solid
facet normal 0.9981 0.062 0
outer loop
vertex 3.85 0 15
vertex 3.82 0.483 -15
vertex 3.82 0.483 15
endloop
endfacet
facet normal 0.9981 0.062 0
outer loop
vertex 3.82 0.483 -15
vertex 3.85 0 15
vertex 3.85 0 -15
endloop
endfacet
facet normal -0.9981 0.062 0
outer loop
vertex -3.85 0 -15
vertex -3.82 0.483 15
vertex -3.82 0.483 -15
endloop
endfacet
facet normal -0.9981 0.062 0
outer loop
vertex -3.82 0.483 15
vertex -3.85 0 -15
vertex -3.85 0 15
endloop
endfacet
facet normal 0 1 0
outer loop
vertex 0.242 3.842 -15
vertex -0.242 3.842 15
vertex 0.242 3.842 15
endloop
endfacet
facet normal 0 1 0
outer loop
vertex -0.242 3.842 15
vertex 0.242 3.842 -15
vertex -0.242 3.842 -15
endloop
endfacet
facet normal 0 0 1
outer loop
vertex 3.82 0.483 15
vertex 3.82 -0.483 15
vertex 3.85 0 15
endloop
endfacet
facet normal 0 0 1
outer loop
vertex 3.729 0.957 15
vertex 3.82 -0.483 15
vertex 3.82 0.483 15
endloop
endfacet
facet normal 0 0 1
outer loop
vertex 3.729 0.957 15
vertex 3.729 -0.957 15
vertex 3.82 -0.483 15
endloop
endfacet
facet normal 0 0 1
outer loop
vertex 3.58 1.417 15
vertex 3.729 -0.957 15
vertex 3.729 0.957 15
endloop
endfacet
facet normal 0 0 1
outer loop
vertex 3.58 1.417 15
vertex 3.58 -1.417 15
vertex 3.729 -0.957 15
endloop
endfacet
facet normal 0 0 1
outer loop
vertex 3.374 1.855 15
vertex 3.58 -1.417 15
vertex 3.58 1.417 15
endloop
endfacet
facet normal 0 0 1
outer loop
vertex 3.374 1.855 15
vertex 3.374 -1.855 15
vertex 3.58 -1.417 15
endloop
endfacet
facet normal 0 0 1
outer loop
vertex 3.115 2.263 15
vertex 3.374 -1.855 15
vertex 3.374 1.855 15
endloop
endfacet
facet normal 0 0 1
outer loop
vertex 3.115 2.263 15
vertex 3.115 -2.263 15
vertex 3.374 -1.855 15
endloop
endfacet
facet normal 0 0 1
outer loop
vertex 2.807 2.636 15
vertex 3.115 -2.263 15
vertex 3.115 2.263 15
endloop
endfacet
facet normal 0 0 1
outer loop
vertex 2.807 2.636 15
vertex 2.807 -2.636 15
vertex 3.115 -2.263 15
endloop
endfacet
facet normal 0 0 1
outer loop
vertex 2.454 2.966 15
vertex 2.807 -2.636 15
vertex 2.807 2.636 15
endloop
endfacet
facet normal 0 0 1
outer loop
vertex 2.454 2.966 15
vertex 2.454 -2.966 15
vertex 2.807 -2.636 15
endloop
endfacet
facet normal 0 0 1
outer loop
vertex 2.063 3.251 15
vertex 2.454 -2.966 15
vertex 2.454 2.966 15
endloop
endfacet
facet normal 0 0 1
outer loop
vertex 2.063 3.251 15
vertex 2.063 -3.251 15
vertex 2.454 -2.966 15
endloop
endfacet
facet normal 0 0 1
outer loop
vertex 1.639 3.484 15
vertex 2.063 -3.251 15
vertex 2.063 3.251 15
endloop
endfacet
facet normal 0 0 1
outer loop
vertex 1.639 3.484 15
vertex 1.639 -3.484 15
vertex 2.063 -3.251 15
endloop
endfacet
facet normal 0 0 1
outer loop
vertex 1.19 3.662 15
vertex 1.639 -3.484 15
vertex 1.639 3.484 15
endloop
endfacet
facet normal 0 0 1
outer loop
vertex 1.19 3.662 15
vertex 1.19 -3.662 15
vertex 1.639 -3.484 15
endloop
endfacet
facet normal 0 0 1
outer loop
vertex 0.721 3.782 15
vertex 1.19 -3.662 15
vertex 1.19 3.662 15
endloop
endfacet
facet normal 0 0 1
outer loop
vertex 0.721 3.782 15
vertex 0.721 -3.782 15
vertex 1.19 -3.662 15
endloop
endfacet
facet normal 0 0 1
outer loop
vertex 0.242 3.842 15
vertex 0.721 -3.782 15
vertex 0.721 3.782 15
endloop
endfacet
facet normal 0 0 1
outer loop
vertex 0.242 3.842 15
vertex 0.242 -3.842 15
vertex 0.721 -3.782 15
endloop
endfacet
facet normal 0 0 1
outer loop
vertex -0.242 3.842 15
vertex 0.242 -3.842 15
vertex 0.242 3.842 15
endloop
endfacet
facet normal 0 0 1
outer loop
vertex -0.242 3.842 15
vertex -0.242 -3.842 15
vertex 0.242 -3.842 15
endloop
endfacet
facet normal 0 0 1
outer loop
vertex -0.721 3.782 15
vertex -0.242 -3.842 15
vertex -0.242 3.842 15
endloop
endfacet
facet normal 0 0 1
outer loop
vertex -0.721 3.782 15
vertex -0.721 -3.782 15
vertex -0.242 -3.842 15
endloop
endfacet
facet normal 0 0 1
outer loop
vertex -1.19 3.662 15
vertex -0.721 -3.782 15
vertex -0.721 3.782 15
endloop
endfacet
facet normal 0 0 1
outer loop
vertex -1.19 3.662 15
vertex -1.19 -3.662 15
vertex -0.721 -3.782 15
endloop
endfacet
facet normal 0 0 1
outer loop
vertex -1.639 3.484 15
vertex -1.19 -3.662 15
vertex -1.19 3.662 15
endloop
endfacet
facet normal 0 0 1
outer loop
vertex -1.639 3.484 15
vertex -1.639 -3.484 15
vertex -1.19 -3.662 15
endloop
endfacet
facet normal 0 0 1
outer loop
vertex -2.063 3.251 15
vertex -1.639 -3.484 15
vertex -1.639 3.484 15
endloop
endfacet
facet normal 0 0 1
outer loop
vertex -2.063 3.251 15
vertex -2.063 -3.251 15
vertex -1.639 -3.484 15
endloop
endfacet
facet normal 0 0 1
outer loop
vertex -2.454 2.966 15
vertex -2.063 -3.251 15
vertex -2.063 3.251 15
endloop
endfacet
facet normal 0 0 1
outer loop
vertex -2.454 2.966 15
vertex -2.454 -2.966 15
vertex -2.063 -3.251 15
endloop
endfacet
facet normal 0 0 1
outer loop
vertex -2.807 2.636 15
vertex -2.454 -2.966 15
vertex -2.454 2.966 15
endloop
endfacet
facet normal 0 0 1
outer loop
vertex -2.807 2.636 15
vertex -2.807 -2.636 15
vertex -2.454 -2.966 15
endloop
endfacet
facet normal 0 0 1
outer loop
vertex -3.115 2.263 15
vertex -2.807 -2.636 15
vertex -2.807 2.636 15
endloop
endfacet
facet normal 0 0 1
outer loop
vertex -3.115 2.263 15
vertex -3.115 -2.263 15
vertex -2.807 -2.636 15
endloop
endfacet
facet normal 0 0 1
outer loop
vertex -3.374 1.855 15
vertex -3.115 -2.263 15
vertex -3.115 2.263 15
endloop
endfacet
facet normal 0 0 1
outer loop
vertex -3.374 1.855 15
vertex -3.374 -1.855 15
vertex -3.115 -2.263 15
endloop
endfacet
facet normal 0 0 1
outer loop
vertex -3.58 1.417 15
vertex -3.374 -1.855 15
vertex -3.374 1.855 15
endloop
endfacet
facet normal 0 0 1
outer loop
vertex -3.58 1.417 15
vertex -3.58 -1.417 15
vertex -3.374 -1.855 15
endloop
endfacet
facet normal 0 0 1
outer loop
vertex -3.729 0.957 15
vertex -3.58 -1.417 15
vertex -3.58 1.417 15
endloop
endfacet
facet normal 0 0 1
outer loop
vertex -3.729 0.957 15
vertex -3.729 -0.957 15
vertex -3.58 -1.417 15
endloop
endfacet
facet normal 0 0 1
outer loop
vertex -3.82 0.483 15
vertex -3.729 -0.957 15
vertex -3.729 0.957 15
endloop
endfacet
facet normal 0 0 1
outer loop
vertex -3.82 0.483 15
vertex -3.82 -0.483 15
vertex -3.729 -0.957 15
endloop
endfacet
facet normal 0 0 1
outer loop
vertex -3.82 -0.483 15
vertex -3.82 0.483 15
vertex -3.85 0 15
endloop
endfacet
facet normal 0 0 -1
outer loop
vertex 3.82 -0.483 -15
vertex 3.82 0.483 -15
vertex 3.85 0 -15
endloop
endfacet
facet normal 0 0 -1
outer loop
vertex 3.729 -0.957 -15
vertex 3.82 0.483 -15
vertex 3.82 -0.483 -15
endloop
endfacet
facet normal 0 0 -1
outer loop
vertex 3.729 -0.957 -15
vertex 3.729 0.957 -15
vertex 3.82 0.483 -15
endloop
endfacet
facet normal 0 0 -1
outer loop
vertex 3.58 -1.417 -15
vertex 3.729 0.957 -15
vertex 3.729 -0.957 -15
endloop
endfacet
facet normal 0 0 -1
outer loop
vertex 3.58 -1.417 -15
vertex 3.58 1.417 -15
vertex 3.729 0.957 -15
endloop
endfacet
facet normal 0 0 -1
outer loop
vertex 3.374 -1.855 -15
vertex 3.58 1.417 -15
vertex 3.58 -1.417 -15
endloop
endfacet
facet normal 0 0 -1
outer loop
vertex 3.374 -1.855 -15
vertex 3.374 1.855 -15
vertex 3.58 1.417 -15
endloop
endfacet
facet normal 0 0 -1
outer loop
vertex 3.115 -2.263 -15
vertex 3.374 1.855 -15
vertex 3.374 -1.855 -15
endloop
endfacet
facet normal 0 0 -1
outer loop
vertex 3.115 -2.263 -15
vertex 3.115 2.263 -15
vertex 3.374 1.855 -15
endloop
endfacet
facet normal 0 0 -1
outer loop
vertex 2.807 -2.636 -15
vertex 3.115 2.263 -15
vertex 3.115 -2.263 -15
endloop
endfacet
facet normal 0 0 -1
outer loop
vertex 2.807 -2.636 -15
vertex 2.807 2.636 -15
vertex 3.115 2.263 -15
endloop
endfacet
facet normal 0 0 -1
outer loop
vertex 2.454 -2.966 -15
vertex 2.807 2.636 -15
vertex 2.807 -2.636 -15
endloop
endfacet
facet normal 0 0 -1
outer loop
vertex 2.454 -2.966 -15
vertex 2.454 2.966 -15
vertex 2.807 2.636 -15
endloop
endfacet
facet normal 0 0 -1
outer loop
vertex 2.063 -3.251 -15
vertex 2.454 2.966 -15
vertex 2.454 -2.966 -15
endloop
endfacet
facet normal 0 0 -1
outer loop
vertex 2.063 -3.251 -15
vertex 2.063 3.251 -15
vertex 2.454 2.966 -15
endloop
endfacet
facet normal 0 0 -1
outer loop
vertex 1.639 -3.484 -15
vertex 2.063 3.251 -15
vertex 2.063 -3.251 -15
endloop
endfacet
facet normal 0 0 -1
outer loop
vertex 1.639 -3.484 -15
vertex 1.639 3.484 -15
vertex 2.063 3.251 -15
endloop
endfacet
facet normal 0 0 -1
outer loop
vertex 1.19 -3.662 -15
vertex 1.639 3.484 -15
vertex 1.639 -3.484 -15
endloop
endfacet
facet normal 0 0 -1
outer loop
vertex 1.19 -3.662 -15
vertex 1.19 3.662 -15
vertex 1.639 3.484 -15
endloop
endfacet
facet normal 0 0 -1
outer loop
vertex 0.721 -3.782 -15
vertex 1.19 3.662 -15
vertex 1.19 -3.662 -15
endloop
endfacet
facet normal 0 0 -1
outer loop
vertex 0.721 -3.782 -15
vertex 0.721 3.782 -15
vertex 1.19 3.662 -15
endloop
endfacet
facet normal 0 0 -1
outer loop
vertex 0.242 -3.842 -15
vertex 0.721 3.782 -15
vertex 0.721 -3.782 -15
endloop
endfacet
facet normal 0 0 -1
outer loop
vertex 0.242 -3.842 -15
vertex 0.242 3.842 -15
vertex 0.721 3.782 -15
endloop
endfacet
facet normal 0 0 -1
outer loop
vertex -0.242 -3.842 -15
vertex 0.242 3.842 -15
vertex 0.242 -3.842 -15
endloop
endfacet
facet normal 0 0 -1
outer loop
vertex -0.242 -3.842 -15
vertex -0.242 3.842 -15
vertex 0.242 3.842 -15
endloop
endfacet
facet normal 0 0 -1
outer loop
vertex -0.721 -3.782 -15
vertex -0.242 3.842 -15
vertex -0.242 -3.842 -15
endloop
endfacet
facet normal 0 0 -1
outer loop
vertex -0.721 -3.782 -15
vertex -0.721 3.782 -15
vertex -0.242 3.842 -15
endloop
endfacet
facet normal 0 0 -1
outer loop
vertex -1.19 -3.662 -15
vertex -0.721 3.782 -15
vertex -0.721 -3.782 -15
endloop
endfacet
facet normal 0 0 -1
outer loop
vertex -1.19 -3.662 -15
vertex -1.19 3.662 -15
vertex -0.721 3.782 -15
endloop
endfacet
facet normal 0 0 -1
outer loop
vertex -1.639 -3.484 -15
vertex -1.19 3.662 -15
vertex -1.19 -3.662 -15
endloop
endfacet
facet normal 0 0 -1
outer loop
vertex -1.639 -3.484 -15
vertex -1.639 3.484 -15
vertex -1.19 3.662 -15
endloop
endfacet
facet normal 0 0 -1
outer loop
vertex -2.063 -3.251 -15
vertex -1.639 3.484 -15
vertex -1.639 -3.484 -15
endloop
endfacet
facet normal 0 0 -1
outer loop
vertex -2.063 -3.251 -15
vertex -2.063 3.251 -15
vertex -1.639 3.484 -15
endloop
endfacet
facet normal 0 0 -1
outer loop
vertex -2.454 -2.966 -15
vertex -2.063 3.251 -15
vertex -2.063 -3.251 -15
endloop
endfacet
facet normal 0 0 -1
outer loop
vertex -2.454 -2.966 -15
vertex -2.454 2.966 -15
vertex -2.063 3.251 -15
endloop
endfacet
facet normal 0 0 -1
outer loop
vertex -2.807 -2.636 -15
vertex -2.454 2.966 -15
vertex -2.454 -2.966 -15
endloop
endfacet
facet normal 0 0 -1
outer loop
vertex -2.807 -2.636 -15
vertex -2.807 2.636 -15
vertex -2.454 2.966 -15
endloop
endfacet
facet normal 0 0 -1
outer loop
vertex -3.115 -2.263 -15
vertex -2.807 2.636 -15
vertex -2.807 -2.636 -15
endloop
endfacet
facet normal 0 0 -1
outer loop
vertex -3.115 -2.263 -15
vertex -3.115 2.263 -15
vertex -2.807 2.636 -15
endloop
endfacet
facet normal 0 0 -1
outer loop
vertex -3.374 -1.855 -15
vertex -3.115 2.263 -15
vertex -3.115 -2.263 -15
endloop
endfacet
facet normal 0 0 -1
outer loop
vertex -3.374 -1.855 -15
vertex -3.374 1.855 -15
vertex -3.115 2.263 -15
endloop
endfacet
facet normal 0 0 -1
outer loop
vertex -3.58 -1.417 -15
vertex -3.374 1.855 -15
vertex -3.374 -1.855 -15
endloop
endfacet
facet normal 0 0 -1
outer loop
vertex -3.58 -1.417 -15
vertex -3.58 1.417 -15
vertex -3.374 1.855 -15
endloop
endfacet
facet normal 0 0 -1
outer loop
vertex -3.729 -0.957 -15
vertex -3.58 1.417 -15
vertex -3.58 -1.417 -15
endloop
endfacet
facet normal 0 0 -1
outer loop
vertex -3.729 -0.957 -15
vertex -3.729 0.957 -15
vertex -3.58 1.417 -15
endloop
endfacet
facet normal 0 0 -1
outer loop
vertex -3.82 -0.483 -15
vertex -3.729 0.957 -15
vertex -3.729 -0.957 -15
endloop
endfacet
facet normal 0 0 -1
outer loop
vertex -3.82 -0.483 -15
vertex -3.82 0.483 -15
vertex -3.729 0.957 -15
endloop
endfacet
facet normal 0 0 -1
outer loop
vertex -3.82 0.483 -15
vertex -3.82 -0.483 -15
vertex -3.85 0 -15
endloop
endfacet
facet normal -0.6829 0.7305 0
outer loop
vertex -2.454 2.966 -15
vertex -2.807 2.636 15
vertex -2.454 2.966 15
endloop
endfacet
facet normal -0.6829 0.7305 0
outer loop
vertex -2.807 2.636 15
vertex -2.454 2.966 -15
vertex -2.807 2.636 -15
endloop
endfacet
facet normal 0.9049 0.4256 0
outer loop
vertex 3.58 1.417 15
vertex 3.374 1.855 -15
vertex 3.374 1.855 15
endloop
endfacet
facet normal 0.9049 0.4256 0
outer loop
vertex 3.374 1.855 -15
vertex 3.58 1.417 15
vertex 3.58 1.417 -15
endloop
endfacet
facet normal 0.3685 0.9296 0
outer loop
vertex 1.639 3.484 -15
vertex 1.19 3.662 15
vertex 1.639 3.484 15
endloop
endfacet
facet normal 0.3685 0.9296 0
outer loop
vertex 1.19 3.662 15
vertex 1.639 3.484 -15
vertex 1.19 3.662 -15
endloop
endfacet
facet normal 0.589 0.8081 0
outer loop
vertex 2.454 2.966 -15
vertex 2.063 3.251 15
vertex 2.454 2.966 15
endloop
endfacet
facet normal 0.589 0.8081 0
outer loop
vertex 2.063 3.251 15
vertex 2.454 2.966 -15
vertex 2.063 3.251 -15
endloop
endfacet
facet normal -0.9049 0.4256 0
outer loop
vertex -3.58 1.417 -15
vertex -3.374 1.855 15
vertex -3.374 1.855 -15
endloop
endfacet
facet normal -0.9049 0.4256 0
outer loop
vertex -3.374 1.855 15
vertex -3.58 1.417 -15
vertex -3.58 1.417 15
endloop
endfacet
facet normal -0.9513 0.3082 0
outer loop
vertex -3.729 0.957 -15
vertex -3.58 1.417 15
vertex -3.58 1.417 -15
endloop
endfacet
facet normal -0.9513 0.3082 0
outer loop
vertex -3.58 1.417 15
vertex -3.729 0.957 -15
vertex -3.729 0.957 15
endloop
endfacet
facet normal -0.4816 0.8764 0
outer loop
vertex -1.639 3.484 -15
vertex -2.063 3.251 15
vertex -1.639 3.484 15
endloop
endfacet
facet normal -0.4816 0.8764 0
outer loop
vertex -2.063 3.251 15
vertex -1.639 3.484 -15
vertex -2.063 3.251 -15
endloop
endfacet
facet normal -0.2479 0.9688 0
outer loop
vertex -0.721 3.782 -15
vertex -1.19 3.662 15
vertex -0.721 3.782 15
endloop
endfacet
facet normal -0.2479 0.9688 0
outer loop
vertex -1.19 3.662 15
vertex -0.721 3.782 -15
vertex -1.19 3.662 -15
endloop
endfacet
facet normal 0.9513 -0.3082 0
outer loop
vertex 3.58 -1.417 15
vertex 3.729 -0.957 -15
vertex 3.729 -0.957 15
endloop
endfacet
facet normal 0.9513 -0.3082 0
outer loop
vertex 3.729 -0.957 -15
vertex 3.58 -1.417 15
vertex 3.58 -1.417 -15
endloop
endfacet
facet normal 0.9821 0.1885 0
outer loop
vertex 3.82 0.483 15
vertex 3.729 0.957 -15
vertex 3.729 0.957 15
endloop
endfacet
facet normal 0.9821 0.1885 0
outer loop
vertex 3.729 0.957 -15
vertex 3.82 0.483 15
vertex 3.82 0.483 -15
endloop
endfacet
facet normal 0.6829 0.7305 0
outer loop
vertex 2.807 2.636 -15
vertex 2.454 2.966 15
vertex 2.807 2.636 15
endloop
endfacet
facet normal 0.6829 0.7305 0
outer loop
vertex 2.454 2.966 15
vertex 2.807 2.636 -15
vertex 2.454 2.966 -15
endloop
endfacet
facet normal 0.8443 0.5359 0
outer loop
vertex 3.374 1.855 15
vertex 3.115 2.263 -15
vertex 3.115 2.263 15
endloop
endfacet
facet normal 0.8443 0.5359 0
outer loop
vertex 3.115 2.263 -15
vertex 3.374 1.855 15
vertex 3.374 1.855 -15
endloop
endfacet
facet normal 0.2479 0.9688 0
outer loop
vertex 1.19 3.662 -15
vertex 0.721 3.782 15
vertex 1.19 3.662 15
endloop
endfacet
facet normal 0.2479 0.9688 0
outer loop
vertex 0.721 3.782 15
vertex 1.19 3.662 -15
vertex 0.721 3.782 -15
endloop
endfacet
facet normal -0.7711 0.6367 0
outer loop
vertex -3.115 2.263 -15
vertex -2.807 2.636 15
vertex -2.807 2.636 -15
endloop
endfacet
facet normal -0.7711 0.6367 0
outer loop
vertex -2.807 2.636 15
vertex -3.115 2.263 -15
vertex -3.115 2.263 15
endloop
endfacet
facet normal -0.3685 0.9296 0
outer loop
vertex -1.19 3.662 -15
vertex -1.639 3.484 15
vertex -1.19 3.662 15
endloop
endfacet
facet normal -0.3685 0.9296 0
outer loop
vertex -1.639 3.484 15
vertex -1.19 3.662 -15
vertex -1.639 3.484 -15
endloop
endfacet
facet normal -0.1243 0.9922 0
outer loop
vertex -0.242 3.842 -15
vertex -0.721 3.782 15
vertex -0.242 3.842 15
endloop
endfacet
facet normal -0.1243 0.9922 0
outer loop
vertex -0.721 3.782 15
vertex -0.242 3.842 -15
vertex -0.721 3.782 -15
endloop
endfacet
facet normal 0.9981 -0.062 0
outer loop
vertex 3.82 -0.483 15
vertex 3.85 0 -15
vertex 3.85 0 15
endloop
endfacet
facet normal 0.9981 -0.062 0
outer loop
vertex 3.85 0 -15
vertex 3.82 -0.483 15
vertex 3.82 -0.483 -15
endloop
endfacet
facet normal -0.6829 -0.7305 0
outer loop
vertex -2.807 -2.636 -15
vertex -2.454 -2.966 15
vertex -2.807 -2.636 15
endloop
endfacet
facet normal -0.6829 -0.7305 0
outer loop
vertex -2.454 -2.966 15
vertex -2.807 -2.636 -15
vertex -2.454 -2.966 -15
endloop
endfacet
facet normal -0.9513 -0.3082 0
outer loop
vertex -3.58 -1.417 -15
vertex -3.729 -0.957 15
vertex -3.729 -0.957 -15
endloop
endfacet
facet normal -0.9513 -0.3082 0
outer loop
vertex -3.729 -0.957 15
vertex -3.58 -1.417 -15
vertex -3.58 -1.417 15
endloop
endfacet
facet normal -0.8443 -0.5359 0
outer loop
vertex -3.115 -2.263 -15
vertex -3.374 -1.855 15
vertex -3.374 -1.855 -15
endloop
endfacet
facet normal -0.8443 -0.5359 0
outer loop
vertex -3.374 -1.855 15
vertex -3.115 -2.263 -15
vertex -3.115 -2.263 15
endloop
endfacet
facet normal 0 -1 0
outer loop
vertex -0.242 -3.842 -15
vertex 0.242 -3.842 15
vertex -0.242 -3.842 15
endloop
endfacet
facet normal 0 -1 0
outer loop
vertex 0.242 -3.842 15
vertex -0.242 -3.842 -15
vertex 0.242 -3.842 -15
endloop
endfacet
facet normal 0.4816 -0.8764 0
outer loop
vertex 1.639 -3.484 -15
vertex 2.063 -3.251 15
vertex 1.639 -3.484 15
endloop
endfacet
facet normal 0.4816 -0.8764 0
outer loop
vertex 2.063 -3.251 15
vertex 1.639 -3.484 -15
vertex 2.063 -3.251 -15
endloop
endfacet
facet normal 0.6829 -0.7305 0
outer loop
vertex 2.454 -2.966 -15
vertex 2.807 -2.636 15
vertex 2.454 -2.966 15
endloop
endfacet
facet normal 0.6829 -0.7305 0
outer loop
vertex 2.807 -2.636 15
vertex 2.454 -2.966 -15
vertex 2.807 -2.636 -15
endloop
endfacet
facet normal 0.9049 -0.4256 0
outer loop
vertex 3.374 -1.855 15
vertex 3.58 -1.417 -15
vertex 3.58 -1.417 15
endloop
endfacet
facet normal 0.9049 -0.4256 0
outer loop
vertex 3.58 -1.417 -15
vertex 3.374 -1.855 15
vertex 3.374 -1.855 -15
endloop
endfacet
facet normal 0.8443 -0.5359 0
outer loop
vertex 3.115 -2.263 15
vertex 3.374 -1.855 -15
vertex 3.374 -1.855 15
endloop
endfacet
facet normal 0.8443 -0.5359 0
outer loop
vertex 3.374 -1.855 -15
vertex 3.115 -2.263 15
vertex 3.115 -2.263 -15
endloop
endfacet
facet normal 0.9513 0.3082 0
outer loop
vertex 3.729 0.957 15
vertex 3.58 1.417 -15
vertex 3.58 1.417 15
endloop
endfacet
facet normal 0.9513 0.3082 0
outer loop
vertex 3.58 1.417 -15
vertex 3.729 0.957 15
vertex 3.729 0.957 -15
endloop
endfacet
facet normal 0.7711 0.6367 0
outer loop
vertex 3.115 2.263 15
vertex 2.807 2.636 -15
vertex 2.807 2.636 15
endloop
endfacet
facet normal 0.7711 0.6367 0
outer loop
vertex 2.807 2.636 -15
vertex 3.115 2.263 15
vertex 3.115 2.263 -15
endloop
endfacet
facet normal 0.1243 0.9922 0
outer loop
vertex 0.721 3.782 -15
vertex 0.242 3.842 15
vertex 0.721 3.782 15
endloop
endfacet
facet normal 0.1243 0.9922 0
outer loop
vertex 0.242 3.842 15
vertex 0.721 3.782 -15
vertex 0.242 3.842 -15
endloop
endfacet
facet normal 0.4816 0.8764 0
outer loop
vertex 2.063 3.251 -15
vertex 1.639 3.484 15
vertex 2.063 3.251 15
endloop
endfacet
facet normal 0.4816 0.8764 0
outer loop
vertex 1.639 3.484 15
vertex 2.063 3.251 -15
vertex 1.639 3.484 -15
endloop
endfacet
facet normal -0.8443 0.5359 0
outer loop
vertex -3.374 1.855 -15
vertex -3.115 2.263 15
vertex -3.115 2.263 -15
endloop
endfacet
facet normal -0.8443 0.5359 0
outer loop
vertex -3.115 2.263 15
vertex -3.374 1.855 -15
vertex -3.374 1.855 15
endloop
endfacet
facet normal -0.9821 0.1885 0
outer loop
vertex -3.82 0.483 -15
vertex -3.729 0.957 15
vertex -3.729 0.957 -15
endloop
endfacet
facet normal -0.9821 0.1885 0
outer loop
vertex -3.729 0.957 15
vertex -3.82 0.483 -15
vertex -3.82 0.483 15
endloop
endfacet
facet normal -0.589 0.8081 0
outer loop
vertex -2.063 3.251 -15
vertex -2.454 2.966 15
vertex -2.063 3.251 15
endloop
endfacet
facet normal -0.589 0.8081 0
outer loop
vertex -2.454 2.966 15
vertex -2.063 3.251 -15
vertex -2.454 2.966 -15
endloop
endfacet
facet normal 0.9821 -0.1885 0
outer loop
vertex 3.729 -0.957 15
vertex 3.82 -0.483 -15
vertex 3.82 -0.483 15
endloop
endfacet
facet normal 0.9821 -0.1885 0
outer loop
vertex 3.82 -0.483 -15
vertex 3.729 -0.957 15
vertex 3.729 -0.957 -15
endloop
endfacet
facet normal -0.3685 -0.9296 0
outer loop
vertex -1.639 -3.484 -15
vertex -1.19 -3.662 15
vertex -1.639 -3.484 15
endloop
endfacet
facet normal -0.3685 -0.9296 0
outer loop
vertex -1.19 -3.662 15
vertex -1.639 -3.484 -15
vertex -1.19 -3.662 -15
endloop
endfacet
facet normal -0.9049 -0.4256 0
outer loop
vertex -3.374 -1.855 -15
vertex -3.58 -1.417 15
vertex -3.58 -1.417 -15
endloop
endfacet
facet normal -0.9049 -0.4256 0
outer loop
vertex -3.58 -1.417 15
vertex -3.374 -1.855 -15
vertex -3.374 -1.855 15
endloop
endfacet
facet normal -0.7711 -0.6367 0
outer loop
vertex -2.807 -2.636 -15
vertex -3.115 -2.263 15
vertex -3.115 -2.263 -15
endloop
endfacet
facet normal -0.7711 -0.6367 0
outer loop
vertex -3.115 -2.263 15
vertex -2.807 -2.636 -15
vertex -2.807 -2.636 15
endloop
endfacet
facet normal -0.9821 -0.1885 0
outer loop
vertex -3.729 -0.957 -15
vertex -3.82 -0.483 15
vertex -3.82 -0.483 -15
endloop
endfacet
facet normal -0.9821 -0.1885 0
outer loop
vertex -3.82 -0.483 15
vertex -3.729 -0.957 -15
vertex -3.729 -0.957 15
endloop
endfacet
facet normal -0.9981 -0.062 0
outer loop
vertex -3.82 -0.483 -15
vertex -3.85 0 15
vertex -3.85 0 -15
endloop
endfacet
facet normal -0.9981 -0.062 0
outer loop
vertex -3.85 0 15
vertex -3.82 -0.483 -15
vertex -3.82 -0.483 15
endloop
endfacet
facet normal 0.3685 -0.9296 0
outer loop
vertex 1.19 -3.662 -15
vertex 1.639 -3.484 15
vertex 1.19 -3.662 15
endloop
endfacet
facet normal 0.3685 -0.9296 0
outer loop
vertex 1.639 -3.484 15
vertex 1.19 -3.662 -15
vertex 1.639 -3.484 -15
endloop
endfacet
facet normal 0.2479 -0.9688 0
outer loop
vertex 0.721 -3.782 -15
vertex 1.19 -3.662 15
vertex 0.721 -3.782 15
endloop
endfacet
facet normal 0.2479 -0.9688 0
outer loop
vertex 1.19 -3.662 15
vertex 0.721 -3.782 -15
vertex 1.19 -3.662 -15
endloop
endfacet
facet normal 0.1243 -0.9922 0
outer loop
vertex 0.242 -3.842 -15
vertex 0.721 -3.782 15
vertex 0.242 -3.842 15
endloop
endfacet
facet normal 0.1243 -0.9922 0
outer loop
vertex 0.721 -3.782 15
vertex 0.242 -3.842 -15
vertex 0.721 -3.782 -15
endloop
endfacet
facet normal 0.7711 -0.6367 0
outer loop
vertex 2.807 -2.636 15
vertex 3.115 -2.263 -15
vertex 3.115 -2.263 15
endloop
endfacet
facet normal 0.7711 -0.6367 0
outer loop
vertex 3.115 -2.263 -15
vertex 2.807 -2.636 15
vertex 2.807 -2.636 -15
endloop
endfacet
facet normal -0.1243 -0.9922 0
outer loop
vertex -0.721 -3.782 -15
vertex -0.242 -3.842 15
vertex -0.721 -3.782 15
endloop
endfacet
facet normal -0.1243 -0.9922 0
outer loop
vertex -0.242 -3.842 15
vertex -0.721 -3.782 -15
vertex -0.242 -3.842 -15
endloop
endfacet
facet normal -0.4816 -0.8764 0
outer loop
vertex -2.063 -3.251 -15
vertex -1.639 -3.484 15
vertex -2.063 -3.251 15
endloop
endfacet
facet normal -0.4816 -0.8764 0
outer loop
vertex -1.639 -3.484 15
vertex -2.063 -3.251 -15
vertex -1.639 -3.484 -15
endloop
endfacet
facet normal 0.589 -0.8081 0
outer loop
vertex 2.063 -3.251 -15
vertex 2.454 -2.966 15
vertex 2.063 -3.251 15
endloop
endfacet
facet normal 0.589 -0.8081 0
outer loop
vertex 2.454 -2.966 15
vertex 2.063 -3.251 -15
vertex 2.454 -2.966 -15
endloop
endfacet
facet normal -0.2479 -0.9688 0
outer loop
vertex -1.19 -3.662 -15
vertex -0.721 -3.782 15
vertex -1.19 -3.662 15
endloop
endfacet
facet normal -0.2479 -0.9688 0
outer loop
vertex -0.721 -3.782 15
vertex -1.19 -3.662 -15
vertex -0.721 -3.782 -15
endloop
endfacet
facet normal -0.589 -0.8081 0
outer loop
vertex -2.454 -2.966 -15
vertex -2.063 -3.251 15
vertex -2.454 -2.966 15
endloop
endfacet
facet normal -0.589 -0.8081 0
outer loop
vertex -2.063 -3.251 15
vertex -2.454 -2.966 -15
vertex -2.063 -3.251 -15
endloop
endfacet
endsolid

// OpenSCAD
$fn = 50;


difference() {
	union() {
		translate(v = [0, 0, -15.0000000000]) {
			cylinder(h = 30, r = 3.8500000000);
		}
	}
	union() {
		translate(v = [0, 0, -100.0000000000]) {
			cylinder(h = 200, r = 0);
		}
	}
}
